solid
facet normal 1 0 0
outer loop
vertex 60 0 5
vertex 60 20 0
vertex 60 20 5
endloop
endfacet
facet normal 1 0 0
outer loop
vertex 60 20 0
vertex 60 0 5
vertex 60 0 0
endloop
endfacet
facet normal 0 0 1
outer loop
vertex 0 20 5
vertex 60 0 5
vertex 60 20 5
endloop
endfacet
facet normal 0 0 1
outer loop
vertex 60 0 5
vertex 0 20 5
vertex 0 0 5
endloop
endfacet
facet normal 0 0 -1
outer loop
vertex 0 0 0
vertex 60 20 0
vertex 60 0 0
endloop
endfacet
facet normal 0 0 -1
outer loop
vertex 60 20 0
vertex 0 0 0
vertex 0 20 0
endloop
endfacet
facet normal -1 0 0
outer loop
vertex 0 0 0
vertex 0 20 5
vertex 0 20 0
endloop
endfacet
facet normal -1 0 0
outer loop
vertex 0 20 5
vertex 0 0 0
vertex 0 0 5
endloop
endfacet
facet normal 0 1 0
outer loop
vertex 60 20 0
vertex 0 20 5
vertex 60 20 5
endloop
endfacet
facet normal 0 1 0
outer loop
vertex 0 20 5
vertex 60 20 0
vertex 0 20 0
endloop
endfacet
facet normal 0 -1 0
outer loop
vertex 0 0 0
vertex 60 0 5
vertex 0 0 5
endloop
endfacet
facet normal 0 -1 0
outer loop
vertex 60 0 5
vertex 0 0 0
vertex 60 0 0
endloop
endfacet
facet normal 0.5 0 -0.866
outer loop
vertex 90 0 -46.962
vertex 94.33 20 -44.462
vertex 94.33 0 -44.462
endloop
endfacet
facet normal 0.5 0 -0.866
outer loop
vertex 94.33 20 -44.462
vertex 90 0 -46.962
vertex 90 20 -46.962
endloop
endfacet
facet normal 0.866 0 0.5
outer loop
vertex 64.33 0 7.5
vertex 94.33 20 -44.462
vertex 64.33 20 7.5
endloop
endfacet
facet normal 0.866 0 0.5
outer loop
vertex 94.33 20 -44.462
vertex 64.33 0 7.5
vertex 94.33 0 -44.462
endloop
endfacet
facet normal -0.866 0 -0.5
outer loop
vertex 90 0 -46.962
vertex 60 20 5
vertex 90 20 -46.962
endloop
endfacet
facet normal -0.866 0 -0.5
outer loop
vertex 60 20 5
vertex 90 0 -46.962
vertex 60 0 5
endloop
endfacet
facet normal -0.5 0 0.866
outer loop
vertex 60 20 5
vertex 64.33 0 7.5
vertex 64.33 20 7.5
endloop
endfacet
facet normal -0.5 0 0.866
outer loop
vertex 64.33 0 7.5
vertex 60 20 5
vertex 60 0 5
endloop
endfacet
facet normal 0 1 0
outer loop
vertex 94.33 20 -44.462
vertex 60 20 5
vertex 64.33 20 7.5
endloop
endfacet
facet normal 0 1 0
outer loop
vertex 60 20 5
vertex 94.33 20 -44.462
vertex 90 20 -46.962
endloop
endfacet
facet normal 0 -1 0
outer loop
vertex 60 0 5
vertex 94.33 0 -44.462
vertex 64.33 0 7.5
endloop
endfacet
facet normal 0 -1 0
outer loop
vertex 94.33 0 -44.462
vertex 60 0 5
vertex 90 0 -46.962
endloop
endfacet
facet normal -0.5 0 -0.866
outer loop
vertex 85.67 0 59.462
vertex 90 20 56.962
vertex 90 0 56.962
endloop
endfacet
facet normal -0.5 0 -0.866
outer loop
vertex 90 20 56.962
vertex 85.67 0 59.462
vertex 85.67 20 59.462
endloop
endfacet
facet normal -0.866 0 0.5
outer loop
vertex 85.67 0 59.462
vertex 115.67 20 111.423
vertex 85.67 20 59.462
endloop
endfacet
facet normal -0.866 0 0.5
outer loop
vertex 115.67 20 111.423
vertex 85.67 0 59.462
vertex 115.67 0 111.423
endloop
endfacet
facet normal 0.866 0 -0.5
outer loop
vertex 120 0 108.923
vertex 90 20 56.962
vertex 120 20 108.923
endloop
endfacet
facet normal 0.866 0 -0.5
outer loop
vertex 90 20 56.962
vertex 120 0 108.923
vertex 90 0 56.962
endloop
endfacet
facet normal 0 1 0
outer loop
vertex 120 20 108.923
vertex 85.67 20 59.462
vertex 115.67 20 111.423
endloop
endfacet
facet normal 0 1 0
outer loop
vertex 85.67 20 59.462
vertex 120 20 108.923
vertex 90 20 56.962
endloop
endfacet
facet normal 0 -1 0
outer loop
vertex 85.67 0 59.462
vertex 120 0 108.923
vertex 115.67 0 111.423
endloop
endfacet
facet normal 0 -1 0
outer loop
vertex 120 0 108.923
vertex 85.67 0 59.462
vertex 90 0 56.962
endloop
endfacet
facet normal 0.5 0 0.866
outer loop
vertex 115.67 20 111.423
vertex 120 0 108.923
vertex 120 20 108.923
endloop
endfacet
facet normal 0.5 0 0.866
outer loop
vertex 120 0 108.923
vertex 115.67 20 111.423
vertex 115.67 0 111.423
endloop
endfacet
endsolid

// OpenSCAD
// Parameters for the zigzag plate
plate_length = 60;  // Length of each segment of the plate
plate_width = 20;   // Width of the plate
plate_thickness = 5; // Thickness of the plate
bend_angle = 60;    // Adjusted angle of the bends in degrees for sharper Z-like structure
bend_offset = plate_thickness / tan(bend_angle); // Offset for the bend

module zigzag_plate() {
    // First segment
    translate([0, 0, 0])
    cube([plate_length, plate_width, plate_thickness], center = false);

    // Second segment (angled)
    translate([plate_length, 0, plate_thickness])
    rotate([0, bend_angle, 0])
    cube([plate_length, plate_width, plate_thickness], center = false);

    // Third segment
    translate([plate_length + plate_length * cos(bend_angle), 0, plate_thickness + plate_length * sin(bend_angle)])
    rotate([0, -bend_angle, 0])
    cube([plate_length, plate_width, plate_thickness], center = false);
}

// Call the zigzag_plate module to render the model
zigzag_plate();
